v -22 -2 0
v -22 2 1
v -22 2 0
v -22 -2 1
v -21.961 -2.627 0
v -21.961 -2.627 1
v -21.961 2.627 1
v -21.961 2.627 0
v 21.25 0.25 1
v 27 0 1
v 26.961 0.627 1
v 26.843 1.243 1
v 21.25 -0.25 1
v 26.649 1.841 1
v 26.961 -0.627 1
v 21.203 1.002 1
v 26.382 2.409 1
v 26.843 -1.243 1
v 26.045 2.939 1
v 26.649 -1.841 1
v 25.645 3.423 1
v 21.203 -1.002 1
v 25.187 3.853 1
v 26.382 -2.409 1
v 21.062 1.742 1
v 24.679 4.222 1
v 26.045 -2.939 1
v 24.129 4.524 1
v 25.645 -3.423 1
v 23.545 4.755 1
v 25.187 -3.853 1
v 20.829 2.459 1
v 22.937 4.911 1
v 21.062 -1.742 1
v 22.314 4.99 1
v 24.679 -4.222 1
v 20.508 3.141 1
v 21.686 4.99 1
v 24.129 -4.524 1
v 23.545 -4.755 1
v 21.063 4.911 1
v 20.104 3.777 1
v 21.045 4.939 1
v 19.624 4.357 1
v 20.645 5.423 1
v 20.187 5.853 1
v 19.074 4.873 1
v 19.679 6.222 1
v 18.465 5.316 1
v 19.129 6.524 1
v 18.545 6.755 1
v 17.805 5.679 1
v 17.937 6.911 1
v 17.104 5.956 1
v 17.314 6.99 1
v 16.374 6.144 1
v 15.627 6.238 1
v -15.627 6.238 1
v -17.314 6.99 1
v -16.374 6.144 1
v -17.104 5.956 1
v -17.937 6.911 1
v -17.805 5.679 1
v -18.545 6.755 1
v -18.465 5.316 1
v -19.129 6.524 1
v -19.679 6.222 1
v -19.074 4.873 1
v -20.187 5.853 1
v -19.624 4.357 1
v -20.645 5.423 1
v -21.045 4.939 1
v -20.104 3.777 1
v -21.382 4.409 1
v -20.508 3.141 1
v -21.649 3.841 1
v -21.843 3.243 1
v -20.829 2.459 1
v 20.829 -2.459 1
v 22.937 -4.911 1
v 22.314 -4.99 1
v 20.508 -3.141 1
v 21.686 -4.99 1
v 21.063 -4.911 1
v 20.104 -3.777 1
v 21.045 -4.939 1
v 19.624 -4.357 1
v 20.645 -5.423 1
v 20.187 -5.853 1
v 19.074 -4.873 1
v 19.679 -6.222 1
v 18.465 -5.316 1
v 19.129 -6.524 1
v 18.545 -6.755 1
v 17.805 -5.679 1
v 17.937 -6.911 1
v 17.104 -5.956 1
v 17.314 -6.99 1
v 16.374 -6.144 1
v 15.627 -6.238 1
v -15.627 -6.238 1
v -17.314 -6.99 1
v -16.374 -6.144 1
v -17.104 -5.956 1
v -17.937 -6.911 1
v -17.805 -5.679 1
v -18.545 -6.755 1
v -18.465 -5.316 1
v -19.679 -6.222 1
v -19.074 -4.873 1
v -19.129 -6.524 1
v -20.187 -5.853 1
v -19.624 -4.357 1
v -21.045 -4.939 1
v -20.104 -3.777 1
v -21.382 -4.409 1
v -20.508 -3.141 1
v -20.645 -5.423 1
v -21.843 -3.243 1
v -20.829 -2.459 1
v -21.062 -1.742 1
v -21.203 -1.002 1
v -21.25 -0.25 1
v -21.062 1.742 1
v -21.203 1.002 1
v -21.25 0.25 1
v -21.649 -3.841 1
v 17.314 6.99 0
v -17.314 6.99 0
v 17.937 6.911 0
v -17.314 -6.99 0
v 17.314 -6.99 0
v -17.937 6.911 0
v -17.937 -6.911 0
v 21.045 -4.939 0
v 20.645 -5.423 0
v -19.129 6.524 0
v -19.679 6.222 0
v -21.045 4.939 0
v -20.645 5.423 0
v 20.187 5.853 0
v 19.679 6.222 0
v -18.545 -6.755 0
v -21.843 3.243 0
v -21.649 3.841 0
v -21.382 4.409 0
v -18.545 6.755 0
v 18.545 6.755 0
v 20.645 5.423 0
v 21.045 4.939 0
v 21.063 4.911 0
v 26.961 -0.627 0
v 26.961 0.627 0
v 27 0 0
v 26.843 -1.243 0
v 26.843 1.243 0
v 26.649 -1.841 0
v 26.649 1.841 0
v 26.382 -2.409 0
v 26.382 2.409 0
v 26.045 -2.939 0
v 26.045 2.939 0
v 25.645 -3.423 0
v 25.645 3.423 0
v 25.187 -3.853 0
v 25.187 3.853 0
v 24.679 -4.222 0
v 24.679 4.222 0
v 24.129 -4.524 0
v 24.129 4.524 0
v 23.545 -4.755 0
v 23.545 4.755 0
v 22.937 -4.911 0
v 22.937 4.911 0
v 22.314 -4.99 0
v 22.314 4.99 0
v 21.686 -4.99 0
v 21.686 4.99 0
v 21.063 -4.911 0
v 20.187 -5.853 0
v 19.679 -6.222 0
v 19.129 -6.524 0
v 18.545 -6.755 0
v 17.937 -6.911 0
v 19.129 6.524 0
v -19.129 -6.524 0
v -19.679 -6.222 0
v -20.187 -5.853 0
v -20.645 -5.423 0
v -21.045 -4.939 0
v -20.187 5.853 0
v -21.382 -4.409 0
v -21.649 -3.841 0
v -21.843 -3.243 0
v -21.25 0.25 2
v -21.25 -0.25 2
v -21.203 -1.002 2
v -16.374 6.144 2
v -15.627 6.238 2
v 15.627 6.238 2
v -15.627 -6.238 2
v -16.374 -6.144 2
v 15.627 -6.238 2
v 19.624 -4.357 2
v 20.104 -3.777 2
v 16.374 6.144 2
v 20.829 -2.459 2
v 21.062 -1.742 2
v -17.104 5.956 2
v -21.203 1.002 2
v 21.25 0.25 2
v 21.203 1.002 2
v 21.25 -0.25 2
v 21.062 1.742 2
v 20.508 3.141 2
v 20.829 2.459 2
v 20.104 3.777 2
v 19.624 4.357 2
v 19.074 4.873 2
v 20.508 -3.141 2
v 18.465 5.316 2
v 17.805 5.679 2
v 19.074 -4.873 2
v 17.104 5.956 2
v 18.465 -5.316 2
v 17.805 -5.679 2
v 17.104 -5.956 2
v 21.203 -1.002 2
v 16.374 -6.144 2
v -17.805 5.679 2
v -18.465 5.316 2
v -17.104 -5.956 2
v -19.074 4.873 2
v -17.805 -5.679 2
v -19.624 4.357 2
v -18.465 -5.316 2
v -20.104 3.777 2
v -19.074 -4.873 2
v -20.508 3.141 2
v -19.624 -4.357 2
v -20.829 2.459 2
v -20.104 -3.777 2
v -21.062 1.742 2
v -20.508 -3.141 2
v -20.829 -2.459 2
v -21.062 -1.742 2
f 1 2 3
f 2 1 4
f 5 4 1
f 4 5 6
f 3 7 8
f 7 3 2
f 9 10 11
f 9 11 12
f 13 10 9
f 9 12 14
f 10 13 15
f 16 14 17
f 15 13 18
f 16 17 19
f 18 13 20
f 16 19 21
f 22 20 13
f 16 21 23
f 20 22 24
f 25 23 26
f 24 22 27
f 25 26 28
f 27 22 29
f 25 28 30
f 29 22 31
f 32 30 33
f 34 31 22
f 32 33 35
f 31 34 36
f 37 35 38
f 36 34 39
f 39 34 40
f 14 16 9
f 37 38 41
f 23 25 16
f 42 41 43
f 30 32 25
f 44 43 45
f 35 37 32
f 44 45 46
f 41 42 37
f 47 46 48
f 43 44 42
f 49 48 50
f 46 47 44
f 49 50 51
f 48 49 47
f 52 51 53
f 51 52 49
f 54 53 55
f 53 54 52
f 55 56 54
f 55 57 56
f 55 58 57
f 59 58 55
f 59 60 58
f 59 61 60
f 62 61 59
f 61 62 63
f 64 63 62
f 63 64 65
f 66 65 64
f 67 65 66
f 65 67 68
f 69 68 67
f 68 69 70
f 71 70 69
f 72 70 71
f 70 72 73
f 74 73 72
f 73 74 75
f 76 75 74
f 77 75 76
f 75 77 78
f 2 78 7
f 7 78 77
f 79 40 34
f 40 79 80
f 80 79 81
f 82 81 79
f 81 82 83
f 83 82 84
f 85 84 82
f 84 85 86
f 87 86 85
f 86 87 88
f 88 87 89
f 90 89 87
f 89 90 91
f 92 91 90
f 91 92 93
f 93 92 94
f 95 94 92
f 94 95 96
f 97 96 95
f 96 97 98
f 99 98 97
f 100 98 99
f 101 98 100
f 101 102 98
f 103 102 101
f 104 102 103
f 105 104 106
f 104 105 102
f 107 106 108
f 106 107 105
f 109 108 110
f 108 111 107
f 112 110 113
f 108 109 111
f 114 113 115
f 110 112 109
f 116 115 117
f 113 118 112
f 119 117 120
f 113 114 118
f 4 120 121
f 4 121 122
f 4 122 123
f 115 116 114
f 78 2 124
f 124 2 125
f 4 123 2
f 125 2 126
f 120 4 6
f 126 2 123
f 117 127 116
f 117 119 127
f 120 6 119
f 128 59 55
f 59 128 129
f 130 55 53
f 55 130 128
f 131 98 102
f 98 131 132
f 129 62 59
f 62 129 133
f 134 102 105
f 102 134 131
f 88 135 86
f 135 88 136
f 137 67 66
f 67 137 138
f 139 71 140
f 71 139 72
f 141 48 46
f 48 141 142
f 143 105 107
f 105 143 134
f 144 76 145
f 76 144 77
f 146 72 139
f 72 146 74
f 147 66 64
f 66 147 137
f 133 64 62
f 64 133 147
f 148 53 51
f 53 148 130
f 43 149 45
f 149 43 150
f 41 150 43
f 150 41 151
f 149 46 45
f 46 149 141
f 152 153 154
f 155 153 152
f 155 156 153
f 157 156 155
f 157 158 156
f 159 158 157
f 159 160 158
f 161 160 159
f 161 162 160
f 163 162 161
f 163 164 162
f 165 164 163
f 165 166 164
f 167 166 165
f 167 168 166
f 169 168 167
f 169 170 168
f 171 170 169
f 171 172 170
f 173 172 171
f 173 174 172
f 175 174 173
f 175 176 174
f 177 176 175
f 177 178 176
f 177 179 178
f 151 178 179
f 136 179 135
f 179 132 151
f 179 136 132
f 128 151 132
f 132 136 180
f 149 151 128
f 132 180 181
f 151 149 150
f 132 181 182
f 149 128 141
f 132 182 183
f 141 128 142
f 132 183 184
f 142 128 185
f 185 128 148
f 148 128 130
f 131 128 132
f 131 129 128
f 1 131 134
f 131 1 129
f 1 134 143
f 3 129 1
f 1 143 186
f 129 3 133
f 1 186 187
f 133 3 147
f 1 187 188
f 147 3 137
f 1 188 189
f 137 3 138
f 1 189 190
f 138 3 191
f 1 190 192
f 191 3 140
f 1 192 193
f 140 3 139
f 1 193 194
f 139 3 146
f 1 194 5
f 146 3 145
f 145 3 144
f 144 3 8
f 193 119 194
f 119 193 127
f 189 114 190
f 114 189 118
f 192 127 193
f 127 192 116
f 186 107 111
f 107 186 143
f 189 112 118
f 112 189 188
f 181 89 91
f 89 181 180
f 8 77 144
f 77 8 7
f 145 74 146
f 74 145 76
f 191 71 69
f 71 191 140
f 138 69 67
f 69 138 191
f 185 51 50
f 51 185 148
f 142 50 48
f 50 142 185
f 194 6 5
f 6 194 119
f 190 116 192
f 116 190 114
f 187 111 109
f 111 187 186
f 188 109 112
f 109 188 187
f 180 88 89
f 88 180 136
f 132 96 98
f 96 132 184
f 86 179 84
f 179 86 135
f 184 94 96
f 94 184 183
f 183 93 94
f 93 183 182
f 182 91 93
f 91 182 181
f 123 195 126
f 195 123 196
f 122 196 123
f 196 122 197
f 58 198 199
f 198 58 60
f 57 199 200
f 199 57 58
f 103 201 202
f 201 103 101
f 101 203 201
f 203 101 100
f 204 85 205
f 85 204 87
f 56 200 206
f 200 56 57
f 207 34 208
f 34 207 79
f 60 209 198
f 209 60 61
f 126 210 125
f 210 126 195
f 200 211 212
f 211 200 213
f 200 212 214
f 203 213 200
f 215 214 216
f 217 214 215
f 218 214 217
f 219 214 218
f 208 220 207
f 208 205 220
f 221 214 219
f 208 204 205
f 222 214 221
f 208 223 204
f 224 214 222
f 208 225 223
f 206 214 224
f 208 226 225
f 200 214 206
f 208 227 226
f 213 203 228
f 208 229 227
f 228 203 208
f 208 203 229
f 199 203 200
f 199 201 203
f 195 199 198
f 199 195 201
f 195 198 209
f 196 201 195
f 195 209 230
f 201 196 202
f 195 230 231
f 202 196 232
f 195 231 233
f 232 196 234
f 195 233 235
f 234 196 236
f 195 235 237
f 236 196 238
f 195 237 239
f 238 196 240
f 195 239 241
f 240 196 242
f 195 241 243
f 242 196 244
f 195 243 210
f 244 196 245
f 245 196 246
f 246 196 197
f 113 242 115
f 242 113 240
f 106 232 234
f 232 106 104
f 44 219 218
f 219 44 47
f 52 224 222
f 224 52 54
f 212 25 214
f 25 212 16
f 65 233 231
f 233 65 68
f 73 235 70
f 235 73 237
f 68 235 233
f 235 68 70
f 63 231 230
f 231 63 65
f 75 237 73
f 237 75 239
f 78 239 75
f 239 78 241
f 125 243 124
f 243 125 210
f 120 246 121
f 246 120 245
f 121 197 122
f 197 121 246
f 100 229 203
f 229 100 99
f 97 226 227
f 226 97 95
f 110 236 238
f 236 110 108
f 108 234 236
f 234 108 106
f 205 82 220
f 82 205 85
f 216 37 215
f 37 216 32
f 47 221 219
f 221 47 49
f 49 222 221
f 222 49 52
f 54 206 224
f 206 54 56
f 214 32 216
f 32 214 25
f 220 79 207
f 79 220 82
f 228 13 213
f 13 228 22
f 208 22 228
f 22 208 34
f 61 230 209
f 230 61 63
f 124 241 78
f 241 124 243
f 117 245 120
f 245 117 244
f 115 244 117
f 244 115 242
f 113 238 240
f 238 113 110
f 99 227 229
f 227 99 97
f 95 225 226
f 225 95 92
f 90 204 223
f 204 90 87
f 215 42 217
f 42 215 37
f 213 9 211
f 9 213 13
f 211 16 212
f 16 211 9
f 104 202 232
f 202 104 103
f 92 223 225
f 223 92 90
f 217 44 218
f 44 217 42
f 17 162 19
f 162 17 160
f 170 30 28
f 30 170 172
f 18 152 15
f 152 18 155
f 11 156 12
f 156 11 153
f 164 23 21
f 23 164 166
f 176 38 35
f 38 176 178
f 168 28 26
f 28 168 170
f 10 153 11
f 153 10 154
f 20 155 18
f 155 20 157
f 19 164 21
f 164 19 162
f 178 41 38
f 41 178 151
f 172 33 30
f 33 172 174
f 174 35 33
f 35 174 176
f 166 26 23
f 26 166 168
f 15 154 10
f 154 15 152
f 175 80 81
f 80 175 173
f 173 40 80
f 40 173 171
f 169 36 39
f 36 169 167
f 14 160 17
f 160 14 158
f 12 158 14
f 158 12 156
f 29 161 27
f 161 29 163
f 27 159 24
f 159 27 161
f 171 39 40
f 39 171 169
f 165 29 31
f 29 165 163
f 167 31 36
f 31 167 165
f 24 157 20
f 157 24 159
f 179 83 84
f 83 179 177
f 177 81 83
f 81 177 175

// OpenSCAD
$fn = 50;


difference() {
	union() {
		translate(v = [0, 0, 0]) {
			rotate(a = [0, 0, 0]) {
				hull() {
					translate(v = [-17.0000000000, 2.0000000000, 0]) {
						rotate(a = [0, 0, 0]) {
							translate(v = [0, 0, 0]) {
								rotate(a = [0, 0, 0]) {
									cylinder(h = 1, r = 5);
								}
							}
						}
					}
					translate(v = [17.0000000000, 2.0000000000, 0]) {
						rotate(a = [0, 0, 0]) {
							translate(v = [0, 0, 0]) {
								rotate(a = [0, 0, 0]) {
									cylinder(h = 1, r = 5);
								}
							}
						}
					}
					translate(v = [-17.0000000000, -2.0000000000, 0]) {
						rotate(a = [0, 0, 0]) {
							translate(v = [0, 0, 0]) {
								rotate(a = [0, 0, 0]) {
									cylinder(h = 1, r = 5);
								}
							}
						}
					}
					translate(v = [17.0000000000, -2.0000000000, 0]) {
						rotate(a = [0, 0, 0]) {
							translate(v = [0, 0, 0]) {
								rotate(a = [0, 0, 0]) {
									cylinder(h = 1, r = 5);
								}
							}
						}
					}
				}
			}
		}
		translate(v = [0, 0, 0]) {
			rotate(a = [0, 0, 0]) {
				hull() {
					translate(v = [-15.2500000000, 0.2500000000, 0]) {
						rotate(a = [0, 0, 0]) {
							translate(v = [0, 0, 0]) {
								rotate(a = [0, 0, 0]) {
									cylinder(h = 2, r = 6);
								}
							}
						}
					}
					translate(v = [15.2500000000, 0.2500000000, 0]) {
						rotate(a = [0, 0, 0]) {
							translate(v = [0, 0, 0]) {
								rotate(a = [0, 0, 0]) {
									cylinder(h = 2, r = 6);
								}
							}
						}
					}
					translate(v = [-15.2500000000, -0.2500000000, 0]) {
						rotate(a = [0, 0, 0]) {
							translate(v = [0, 0, 0]) {
								rotate(a = [0, 0, 0]) {
									cylinder(h = 2, r = 6);
								}
							}
						}
					}
					translate(v = [15.2500000000, -0.2500000000, 0]) {
						rotate(a = [0, 0, 0]) {
							translate(v = [0, 0, 0]) {
								rotate(a = [0, 0, 0]) {
									cylinder(h = 2, r = 6);
								}
							}
						}
					}
				}
			}
		}
		translate(v = [22.0000000000, 0, 0.0000000000]) {
			rotate(a = [0, 0, 0]) {
				cylinder(h = 1, r = 5);
			}
		}
	}
	union();
}
